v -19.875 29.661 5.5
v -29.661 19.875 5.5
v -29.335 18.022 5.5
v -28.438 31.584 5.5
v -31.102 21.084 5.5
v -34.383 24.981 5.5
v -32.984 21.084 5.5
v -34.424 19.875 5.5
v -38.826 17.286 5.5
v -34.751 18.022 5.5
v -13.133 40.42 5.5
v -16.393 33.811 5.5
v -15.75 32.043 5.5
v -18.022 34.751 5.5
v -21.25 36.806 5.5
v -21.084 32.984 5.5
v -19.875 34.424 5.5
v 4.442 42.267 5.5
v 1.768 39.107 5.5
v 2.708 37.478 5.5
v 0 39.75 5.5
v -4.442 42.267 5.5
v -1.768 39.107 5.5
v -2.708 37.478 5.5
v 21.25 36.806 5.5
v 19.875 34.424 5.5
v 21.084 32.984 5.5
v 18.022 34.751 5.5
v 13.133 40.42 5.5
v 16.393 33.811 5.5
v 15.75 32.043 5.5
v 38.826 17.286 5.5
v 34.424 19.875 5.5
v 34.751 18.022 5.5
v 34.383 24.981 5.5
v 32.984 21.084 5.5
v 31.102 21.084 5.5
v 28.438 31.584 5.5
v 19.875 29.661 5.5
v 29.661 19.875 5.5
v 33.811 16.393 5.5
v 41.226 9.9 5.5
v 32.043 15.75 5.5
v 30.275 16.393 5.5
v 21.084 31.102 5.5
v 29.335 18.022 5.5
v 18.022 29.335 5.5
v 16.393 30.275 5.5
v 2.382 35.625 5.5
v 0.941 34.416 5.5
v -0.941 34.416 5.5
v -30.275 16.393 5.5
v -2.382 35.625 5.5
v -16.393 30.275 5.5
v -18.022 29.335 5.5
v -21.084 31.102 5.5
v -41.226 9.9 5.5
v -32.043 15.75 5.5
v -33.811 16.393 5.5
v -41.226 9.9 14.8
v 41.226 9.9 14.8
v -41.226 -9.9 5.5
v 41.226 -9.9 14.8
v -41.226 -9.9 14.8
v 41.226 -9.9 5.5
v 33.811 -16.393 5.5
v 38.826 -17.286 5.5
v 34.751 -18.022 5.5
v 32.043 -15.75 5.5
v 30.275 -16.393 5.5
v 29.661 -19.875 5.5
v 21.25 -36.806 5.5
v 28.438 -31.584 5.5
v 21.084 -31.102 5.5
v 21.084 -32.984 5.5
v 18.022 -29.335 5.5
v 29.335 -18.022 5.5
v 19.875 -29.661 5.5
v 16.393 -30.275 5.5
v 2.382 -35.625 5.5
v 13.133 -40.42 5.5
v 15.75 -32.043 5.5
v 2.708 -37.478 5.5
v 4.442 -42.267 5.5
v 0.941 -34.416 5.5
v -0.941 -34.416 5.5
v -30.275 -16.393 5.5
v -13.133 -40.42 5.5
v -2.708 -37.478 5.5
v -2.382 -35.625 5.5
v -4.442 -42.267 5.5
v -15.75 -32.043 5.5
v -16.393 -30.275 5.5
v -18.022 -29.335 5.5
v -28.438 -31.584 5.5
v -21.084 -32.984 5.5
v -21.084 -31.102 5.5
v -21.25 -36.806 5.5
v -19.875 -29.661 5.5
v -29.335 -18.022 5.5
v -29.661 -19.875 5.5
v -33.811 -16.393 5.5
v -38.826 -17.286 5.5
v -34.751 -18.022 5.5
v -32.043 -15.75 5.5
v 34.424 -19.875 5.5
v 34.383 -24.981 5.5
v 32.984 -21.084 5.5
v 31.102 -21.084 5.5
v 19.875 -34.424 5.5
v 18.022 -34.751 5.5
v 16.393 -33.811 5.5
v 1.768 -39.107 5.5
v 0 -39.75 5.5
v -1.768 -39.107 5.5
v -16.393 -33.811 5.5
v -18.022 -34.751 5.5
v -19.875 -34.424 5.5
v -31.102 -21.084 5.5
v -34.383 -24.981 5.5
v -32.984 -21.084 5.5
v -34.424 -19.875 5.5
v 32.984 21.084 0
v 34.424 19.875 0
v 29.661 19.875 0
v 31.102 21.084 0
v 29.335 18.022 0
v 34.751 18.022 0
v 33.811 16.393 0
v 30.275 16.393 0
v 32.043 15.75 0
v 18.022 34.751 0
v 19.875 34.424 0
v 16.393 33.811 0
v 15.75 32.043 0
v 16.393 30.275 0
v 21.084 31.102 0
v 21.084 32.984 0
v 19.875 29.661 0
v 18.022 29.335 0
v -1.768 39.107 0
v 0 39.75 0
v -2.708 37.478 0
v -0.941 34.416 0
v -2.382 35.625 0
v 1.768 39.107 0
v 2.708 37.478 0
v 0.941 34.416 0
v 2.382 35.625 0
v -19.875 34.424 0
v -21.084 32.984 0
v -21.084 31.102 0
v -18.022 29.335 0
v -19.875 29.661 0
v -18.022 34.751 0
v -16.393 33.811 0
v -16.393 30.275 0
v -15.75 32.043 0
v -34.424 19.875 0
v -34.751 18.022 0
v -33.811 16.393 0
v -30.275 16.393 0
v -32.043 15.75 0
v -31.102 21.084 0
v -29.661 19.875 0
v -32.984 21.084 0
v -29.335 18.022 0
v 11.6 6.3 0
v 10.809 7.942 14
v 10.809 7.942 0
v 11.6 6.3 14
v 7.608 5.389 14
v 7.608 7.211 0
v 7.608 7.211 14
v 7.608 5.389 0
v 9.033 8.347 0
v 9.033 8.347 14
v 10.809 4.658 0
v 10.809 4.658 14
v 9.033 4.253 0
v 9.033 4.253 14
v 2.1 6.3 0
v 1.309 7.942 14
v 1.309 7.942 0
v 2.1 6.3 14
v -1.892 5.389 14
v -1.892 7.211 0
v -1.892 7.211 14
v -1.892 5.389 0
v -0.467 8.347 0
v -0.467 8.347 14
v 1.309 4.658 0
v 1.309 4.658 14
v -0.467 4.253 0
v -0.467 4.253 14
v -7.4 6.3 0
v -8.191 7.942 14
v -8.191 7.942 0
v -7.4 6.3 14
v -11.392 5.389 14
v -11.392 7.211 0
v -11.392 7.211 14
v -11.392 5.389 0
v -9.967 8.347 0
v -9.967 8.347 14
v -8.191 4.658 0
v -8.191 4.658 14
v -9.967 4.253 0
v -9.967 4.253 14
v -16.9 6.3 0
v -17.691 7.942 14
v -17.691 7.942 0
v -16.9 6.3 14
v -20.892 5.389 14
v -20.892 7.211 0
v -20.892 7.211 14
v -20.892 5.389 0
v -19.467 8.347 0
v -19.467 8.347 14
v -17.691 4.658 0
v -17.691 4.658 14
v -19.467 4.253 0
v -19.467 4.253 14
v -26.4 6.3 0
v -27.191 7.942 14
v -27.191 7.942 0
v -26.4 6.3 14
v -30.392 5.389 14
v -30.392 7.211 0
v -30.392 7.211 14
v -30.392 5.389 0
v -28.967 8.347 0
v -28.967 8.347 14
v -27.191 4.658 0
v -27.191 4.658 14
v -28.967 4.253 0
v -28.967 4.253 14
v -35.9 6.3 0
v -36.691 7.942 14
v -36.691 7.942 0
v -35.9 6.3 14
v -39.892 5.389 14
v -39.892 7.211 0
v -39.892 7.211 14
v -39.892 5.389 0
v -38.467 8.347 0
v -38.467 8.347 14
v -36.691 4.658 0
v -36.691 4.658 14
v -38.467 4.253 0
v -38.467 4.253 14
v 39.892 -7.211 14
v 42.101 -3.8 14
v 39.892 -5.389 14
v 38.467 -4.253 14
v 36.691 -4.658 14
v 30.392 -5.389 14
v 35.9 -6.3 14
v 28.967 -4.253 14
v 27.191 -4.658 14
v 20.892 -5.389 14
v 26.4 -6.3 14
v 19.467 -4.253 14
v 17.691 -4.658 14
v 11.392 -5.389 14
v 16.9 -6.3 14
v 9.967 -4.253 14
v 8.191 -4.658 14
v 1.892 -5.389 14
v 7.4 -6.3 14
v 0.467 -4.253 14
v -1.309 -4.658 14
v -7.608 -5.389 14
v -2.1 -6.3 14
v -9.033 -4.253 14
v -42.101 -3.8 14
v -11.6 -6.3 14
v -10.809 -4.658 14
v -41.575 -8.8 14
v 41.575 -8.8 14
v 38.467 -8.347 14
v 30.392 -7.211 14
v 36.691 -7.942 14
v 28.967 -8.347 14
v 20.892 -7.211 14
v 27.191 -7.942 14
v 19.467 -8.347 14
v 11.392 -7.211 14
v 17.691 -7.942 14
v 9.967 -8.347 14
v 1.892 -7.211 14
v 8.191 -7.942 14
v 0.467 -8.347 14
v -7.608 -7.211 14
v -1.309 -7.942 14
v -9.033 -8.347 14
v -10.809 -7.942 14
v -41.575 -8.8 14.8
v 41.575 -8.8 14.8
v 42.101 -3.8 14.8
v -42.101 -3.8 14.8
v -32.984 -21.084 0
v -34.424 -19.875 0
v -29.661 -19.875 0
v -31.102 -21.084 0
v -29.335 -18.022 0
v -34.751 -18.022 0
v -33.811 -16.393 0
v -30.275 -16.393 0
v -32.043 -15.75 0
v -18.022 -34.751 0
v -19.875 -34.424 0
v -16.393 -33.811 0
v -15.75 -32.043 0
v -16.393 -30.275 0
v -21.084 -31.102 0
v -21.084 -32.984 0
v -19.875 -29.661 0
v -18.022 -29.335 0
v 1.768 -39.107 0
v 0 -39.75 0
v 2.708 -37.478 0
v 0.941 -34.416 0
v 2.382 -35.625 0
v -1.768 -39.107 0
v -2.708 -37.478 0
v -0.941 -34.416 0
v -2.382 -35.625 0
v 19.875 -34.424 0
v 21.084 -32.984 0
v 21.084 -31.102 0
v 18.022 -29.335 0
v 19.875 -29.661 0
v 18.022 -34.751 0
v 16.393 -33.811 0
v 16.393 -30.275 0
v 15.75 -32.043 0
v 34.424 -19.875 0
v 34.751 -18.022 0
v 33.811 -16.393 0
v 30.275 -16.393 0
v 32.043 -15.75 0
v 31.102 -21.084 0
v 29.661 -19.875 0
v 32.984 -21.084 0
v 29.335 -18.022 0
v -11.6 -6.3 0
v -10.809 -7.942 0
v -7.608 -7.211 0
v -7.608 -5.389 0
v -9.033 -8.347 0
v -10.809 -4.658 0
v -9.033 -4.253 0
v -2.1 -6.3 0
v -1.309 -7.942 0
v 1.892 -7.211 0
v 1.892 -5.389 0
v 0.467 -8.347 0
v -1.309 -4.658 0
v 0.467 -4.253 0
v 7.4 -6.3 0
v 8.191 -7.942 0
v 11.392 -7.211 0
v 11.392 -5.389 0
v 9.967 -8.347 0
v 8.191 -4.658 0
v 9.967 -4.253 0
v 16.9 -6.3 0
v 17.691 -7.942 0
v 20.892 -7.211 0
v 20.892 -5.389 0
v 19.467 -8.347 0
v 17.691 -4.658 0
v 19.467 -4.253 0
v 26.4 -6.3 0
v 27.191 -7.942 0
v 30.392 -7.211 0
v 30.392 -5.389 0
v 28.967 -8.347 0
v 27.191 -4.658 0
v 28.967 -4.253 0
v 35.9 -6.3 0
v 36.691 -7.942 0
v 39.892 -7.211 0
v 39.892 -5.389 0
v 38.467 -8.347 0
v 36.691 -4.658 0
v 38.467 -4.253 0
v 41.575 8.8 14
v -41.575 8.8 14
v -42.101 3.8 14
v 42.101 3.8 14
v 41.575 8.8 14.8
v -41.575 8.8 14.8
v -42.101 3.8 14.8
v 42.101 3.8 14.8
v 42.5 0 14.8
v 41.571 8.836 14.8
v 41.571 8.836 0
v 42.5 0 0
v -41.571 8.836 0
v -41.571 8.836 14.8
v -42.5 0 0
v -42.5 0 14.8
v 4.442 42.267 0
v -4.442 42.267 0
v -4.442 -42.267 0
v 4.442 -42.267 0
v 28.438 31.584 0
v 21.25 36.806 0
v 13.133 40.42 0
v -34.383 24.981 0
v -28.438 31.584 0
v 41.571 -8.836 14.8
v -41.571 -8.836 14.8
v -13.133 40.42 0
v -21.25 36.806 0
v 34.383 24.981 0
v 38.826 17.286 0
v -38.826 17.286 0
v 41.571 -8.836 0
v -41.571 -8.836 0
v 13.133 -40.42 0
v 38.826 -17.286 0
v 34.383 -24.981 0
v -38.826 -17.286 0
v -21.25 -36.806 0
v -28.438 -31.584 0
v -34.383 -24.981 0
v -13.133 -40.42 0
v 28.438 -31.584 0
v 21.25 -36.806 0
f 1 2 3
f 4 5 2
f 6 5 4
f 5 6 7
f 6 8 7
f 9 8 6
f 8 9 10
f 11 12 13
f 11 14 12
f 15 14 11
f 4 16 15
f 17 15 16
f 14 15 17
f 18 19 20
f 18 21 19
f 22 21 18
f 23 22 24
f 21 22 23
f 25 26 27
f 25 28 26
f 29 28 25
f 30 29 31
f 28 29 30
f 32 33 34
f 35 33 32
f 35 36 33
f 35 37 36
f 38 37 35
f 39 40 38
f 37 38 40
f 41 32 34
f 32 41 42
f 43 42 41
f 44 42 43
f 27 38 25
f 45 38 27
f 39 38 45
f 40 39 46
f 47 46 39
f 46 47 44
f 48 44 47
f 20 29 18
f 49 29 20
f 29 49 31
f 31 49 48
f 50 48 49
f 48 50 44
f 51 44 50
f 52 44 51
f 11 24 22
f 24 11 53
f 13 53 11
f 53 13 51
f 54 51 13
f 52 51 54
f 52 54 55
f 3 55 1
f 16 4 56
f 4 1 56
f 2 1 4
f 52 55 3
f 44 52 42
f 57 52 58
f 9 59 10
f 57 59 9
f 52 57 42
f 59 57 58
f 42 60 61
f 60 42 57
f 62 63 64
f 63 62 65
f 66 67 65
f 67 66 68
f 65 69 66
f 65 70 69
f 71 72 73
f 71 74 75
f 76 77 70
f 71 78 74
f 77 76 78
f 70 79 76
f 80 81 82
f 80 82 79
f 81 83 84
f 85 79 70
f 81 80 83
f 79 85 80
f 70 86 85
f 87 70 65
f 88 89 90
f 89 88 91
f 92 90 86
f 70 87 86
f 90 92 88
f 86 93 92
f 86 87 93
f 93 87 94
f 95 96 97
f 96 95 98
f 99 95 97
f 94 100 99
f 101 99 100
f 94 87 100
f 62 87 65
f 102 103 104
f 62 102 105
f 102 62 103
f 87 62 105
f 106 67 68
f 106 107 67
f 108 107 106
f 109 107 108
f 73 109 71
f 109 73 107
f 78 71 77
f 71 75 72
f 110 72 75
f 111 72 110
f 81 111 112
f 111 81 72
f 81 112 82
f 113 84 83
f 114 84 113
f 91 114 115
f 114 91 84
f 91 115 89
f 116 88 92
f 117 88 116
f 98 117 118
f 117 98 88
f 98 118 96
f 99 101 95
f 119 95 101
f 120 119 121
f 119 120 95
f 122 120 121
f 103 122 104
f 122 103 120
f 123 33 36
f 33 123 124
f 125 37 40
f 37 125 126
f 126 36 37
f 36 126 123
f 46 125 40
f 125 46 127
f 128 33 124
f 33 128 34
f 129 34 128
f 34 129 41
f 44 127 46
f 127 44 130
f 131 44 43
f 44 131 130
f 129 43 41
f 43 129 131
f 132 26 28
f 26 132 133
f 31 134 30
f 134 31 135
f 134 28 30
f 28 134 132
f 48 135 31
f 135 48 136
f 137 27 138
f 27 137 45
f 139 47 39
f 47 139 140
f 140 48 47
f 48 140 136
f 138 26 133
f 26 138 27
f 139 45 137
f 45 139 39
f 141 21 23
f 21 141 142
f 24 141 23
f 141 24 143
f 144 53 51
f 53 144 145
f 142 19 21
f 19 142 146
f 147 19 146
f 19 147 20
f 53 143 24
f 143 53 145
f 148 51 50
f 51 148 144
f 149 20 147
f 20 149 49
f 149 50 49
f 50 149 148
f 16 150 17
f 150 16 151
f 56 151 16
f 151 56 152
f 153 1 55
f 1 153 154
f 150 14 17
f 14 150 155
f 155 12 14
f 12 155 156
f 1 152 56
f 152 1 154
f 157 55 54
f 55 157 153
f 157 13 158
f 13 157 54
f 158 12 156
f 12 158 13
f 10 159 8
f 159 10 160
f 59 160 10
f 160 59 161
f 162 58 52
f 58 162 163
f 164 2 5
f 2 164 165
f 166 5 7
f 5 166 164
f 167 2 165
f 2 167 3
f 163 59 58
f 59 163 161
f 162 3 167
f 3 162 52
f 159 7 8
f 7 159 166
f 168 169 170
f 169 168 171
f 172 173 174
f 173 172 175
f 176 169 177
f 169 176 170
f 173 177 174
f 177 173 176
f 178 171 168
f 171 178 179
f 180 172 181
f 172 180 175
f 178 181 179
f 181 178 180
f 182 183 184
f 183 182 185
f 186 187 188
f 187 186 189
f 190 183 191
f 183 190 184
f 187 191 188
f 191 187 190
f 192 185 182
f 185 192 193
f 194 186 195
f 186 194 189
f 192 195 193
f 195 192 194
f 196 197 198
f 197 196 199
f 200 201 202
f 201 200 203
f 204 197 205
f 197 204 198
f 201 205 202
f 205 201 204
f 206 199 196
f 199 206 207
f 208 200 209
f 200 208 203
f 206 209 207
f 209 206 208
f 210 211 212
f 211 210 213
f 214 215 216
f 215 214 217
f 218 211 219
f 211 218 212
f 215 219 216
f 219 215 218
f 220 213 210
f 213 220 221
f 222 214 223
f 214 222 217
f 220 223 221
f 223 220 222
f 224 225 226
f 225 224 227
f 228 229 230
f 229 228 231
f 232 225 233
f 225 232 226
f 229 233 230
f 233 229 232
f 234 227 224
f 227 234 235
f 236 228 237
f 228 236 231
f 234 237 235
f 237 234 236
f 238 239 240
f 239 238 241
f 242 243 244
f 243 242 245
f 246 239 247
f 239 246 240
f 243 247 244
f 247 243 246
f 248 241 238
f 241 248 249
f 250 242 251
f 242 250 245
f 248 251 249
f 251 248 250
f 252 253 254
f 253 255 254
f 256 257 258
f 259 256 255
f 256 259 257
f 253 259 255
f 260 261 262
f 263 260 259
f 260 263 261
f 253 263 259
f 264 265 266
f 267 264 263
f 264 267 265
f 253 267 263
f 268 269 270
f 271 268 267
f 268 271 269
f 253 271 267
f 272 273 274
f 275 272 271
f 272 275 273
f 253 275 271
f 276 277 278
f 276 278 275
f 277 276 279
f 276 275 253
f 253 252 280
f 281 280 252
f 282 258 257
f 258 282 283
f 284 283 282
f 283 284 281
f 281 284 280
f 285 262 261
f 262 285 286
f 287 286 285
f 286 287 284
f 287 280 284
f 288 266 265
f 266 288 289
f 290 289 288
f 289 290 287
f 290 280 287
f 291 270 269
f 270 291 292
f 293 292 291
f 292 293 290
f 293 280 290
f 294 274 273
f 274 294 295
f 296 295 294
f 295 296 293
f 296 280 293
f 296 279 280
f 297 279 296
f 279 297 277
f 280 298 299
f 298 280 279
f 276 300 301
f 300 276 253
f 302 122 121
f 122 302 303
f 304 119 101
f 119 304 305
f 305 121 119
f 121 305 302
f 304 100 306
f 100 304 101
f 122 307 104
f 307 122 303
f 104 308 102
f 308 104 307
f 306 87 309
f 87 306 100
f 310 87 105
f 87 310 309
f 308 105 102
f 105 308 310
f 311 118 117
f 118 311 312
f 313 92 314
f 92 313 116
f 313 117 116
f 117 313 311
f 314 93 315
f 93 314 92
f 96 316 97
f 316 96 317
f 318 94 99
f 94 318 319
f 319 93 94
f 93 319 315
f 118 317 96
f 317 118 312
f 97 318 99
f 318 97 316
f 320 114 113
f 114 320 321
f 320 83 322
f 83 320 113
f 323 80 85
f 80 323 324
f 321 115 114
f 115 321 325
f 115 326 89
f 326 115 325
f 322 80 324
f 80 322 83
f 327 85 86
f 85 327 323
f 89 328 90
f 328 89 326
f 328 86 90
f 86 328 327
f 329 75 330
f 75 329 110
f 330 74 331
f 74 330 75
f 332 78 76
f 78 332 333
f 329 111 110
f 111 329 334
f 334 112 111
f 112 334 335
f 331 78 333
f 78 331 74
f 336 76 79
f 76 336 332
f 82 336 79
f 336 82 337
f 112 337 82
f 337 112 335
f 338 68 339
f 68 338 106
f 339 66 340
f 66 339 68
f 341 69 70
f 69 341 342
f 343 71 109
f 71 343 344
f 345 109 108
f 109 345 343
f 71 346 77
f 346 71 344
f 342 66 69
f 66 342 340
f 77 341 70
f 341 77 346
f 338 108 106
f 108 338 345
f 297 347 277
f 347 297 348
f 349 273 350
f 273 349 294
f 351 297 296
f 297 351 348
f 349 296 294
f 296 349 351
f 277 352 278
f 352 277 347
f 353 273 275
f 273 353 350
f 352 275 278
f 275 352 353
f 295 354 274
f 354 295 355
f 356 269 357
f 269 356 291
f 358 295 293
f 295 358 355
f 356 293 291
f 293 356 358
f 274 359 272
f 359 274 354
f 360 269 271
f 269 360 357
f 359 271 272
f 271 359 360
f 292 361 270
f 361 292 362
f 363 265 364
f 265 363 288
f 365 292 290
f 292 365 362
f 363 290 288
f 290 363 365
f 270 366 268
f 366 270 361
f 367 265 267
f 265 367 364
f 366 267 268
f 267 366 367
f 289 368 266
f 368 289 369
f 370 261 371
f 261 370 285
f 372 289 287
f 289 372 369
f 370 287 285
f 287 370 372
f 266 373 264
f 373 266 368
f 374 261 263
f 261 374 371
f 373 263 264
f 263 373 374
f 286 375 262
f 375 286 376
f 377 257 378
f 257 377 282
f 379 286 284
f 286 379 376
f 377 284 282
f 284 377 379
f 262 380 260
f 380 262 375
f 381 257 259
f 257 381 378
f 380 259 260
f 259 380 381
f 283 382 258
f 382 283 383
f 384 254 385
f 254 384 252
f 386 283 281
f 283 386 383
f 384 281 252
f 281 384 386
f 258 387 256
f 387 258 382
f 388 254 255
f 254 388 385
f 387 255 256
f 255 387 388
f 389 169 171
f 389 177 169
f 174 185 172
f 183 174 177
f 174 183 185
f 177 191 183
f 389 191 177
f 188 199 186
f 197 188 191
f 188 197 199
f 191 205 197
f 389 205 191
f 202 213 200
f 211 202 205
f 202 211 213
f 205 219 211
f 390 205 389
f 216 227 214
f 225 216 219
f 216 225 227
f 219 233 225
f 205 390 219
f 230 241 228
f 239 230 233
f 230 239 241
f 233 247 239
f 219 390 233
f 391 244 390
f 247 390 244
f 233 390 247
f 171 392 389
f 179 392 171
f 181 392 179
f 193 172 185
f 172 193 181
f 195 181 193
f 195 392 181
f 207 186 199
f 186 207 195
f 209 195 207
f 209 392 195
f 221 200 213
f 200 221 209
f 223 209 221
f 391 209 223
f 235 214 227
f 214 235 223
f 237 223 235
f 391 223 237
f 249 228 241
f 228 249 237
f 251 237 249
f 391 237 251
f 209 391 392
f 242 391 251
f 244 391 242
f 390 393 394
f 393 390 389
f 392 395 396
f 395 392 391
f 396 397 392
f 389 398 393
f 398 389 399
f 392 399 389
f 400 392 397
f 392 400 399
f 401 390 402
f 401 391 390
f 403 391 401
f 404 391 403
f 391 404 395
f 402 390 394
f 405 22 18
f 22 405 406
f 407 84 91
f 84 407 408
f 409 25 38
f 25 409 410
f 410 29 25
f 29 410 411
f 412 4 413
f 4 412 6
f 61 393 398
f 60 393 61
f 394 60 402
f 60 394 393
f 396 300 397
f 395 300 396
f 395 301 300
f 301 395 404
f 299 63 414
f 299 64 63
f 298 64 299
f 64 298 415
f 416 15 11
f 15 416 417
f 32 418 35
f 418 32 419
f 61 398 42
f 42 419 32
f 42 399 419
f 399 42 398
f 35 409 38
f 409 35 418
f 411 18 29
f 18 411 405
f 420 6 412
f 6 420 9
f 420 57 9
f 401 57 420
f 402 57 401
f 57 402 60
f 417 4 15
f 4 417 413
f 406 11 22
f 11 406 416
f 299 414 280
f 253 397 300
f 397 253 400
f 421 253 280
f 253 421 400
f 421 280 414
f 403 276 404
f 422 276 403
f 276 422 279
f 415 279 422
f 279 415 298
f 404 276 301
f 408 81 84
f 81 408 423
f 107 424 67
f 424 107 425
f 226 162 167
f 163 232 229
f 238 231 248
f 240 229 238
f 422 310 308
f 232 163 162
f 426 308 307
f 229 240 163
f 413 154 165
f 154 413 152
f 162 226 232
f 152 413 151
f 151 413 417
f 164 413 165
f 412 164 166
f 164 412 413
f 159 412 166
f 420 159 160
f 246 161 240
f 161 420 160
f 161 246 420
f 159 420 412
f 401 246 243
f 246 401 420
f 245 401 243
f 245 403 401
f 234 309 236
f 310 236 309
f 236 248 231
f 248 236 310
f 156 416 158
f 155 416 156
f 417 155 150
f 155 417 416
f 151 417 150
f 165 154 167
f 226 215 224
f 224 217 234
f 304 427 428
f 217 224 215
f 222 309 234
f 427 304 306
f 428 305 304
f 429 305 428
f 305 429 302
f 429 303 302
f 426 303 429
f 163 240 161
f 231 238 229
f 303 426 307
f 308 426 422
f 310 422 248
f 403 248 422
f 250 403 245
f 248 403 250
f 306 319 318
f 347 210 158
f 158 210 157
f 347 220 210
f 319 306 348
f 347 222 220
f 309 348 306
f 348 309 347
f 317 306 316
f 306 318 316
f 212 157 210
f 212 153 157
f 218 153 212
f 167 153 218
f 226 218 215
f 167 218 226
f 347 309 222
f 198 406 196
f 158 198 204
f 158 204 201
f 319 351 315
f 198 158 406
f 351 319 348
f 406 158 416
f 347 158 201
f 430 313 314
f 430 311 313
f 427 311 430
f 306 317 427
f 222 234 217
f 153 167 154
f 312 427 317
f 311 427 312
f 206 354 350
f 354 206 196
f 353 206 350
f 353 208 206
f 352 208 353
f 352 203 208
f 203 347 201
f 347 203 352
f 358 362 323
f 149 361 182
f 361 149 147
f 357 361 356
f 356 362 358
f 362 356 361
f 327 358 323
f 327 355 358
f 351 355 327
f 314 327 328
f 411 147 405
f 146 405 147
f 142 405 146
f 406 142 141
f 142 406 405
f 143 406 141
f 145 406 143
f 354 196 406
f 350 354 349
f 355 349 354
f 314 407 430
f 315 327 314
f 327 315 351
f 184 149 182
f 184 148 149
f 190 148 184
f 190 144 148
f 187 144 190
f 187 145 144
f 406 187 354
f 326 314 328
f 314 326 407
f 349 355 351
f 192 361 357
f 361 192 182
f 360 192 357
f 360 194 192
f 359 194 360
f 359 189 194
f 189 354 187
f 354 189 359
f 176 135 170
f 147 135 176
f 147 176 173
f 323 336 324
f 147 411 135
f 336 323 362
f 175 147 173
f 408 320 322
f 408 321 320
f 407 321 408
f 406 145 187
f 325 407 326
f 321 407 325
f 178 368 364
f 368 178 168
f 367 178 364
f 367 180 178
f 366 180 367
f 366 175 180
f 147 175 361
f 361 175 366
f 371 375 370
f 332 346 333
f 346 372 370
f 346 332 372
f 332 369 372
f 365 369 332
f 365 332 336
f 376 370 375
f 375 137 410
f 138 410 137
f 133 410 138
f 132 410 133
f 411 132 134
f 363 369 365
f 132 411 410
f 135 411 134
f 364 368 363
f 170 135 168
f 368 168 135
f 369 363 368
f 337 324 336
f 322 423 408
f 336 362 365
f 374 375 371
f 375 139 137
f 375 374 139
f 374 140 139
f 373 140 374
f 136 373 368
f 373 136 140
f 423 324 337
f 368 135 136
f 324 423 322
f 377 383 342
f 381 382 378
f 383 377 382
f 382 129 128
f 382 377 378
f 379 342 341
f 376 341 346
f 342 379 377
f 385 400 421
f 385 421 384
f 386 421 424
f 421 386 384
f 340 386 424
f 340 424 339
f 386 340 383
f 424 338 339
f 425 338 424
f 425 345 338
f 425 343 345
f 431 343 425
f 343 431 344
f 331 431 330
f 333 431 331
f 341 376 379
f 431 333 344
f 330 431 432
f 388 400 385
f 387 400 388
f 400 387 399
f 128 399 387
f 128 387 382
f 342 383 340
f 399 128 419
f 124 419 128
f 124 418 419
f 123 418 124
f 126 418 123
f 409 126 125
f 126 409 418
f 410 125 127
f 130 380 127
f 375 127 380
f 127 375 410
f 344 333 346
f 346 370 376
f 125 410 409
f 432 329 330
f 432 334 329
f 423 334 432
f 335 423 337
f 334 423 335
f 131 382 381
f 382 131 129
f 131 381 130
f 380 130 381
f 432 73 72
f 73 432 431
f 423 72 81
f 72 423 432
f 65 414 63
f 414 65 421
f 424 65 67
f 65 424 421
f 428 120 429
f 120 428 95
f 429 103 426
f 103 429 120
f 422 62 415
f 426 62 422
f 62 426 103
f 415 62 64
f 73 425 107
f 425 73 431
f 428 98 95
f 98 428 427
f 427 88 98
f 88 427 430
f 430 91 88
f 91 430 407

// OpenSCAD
// total width of the mount [mm]
w = 85;

// depth of the rails [mm]
dr = 5;
// height of the rails [mm]
hr = 0.8;
// offset of the rails [mm]
or = 1.1;

// depth of the connector [mm]
dc = 19.8;
// height of the connector [mm]
hc = 8.5;

// height of the mount [mm]
h = 14;

// screw offset [mm]
os = 9.5;
// screw diameter [mm]
ds1 = 4.2;
ds2 = 5.5;


difference() {
    // base
    cylinder(d=w, h=h+hr);
    // cut out connector
    for(r = [0, 180]) {
        rotate([0, 0, r]) 
            translate([-w/2-1, dc/2, h-hc])
                cube([w+2, w/2, h]);
    }
    for(r = [0, 180]) {
        rotate([0, 0, r]) {
            // cut out rails
            translate([-w/2, -dc/2+or, h])
                cube([w+2, dr, hr+1]);
            // drill connector holes
            for(x = [os : -os : -w/2]) {
                translate([x, dc/2-or-dr/2, -1])
                    cylinder(d=ds1, h=h+2);
            }
            // drill base holes
            for(a = [30 : 30 : 150]) {
                rotate([0, 0, a])
                    translate([w/2-ds2, 0, -1])
                        cylinder(d=ds2, h=h+1);
            }
        }
    }
}
